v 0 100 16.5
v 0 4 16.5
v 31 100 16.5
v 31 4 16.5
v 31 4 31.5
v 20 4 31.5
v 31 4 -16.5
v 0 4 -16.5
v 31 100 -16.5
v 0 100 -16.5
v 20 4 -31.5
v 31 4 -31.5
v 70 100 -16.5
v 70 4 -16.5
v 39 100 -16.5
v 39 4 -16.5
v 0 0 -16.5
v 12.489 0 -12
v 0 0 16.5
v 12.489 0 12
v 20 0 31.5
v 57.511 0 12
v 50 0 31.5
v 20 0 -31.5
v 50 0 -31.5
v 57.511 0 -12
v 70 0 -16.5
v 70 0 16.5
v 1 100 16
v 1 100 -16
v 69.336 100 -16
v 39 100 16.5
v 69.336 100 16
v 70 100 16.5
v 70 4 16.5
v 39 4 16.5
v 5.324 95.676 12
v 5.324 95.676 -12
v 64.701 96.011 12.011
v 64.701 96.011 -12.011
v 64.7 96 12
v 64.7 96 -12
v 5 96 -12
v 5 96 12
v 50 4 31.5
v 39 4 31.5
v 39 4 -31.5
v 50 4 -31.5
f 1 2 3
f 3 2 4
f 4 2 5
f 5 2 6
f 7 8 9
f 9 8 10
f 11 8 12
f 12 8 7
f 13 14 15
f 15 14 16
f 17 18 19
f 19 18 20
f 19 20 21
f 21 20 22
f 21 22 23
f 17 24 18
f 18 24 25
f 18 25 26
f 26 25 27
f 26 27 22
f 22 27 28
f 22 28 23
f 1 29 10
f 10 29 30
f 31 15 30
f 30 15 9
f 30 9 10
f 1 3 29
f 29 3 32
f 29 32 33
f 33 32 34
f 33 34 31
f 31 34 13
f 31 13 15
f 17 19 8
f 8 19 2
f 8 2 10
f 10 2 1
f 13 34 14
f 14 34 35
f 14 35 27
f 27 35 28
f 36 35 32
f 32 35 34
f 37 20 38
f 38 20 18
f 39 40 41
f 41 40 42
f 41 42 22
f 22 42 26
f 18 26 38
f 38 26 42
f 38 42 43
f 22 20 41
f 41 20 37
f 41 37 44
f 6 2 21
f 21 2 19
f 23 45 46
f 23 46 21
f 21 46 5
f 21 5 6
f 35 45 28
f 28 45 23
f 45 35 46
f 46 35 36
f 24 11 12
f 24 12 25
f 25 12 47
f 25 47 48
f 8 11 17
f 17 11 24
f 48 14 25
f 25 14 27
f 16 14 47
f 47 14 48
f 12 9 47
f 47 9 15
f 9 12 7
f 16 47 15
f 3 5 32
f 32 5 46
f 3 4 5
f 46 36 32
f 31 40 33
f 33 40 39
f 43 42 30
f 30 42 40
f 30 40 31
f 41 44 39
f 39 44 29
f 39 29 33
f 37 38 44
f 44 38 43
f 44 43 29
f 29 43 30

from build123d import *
from OCP.BRepFilletAPI import BRepFilletAPI_MakeChamfer

# Parameters (mm, degrees)
SKETCH1_W           = 70
SKETCH1_H           = 100
BOSS_EXTRUDE1_DEPTH = 16.5
CUT_EXTRUDE1_DEPTH  = 12
BOSS_EXTRUDE2_DEPTH = 4
BOSS_EXTRUDE3_DEPTH = 4
CHAMFER1_SIZE       = 4
CHAMFER1_SIZE2      = 4.335908163


with BuildPart() as part:
    # Sketch1 → Boss-Extrude1 (new, symmetric)
    with BuildSketch(Plane.XY):
        with Locations((35, 50)):
            Rectangle(SKETCH1_W, SKETCH1_H)
    extrude(amount=BOSS_EXTRUDE1_DEPTH, both=True)

    # Sketch2 → Cut-Extrude1 (cut, symmetric)
    with BuildSketch(Plane.XY):
        Polygon((5, 100), (65, 100), (57.511201523, 0), (12.488798477, 0), align=None)
    extrude(amount=CUT_EXTRUDE1_DEPTH, both=True, mode=Mode.SUBTRACT)

    # Sketch3 → Boss-Extrude2 (add)
    with BuildSketch(Plane.XZ):
        Polygon((0, 16.5), (20, 31.5), (50, 31.5), (70, 16.5), align=None)
        Polygon((50, -31.5), (70, -16.5), (0, -16.5), (20, -31.5), align=None)
    extrude(amount=-BOSS_EXTRUDE2_DEPTH)

    # Sketch5 → Boss-Extrude3 (add, symmetric)
    with BuildSketch(Plane.ZY.offset(-35)):
        Polygon((-16.5, 100), (-31.5, 4), (-16.5, 4), align=None)
        Polygon((31.5, 4), (16.5, 4), (16.5, 100), align=None)
    extrude(amount=BOSS_EXTRUDE3_DEPTH, both=True)

    # Chamfer1: one chamfer whose edges measure the first distance from different faces: ONE call of the kernel's chamfer builder (chamfer() names one face for all edges)
    chamfer1_edges_1 = [part.edges().sort_by_distance(p)[0] for p in [
        (35, 100, -12),
        (35, 100, 12),
    ]]
    chamfer1_edges_2 = [part.edges().sort_by_distance(p)[0] for p in [
        (5, 100, 0),
    ]]
    chamfer1_side_2 = [part.faces().sort_by_distance(p)[0] for p in [
        (69.226113703, 100, 0),
    ]]
    chamfer1_edges_3 = [part.edges().sort_by_distance(p)[0] for p in [
        (65, 100, 0),
    ]]
    chamfer1_side_3 = [part.faces().sort_by_distance(p)[0] for p in [
        (61.255600762, 50, 0),
    ]]
    chamfer1 = BRepFilletAPI_MakeChamfer(part.part.solid().wrapped)
    for e in chamfer1_edges_1:
        chamfer1.Add(CHAMFER1_SIZE, e.wrapped)
    for e in chamfer1_edges_2:
        chamfer1.Add(CHAMFER1_SIZE, CHAMFER1_SIZE2, e.wrapped, chamfer1_side_2[0].wrapped)  # the first distance lies on this face
    for e in chamfer1_edges_3:
        chamfer1.Add(CHAMFER1_SIZE, CHAMFER1_SIZE2, e.wrapped, chamfer1_side_3[0].wrapped)  # the first distance lies on this face
    add(Compound.cast(chamfer1.Shape()), mode=Mode.REPLACE)


solid = part.part
